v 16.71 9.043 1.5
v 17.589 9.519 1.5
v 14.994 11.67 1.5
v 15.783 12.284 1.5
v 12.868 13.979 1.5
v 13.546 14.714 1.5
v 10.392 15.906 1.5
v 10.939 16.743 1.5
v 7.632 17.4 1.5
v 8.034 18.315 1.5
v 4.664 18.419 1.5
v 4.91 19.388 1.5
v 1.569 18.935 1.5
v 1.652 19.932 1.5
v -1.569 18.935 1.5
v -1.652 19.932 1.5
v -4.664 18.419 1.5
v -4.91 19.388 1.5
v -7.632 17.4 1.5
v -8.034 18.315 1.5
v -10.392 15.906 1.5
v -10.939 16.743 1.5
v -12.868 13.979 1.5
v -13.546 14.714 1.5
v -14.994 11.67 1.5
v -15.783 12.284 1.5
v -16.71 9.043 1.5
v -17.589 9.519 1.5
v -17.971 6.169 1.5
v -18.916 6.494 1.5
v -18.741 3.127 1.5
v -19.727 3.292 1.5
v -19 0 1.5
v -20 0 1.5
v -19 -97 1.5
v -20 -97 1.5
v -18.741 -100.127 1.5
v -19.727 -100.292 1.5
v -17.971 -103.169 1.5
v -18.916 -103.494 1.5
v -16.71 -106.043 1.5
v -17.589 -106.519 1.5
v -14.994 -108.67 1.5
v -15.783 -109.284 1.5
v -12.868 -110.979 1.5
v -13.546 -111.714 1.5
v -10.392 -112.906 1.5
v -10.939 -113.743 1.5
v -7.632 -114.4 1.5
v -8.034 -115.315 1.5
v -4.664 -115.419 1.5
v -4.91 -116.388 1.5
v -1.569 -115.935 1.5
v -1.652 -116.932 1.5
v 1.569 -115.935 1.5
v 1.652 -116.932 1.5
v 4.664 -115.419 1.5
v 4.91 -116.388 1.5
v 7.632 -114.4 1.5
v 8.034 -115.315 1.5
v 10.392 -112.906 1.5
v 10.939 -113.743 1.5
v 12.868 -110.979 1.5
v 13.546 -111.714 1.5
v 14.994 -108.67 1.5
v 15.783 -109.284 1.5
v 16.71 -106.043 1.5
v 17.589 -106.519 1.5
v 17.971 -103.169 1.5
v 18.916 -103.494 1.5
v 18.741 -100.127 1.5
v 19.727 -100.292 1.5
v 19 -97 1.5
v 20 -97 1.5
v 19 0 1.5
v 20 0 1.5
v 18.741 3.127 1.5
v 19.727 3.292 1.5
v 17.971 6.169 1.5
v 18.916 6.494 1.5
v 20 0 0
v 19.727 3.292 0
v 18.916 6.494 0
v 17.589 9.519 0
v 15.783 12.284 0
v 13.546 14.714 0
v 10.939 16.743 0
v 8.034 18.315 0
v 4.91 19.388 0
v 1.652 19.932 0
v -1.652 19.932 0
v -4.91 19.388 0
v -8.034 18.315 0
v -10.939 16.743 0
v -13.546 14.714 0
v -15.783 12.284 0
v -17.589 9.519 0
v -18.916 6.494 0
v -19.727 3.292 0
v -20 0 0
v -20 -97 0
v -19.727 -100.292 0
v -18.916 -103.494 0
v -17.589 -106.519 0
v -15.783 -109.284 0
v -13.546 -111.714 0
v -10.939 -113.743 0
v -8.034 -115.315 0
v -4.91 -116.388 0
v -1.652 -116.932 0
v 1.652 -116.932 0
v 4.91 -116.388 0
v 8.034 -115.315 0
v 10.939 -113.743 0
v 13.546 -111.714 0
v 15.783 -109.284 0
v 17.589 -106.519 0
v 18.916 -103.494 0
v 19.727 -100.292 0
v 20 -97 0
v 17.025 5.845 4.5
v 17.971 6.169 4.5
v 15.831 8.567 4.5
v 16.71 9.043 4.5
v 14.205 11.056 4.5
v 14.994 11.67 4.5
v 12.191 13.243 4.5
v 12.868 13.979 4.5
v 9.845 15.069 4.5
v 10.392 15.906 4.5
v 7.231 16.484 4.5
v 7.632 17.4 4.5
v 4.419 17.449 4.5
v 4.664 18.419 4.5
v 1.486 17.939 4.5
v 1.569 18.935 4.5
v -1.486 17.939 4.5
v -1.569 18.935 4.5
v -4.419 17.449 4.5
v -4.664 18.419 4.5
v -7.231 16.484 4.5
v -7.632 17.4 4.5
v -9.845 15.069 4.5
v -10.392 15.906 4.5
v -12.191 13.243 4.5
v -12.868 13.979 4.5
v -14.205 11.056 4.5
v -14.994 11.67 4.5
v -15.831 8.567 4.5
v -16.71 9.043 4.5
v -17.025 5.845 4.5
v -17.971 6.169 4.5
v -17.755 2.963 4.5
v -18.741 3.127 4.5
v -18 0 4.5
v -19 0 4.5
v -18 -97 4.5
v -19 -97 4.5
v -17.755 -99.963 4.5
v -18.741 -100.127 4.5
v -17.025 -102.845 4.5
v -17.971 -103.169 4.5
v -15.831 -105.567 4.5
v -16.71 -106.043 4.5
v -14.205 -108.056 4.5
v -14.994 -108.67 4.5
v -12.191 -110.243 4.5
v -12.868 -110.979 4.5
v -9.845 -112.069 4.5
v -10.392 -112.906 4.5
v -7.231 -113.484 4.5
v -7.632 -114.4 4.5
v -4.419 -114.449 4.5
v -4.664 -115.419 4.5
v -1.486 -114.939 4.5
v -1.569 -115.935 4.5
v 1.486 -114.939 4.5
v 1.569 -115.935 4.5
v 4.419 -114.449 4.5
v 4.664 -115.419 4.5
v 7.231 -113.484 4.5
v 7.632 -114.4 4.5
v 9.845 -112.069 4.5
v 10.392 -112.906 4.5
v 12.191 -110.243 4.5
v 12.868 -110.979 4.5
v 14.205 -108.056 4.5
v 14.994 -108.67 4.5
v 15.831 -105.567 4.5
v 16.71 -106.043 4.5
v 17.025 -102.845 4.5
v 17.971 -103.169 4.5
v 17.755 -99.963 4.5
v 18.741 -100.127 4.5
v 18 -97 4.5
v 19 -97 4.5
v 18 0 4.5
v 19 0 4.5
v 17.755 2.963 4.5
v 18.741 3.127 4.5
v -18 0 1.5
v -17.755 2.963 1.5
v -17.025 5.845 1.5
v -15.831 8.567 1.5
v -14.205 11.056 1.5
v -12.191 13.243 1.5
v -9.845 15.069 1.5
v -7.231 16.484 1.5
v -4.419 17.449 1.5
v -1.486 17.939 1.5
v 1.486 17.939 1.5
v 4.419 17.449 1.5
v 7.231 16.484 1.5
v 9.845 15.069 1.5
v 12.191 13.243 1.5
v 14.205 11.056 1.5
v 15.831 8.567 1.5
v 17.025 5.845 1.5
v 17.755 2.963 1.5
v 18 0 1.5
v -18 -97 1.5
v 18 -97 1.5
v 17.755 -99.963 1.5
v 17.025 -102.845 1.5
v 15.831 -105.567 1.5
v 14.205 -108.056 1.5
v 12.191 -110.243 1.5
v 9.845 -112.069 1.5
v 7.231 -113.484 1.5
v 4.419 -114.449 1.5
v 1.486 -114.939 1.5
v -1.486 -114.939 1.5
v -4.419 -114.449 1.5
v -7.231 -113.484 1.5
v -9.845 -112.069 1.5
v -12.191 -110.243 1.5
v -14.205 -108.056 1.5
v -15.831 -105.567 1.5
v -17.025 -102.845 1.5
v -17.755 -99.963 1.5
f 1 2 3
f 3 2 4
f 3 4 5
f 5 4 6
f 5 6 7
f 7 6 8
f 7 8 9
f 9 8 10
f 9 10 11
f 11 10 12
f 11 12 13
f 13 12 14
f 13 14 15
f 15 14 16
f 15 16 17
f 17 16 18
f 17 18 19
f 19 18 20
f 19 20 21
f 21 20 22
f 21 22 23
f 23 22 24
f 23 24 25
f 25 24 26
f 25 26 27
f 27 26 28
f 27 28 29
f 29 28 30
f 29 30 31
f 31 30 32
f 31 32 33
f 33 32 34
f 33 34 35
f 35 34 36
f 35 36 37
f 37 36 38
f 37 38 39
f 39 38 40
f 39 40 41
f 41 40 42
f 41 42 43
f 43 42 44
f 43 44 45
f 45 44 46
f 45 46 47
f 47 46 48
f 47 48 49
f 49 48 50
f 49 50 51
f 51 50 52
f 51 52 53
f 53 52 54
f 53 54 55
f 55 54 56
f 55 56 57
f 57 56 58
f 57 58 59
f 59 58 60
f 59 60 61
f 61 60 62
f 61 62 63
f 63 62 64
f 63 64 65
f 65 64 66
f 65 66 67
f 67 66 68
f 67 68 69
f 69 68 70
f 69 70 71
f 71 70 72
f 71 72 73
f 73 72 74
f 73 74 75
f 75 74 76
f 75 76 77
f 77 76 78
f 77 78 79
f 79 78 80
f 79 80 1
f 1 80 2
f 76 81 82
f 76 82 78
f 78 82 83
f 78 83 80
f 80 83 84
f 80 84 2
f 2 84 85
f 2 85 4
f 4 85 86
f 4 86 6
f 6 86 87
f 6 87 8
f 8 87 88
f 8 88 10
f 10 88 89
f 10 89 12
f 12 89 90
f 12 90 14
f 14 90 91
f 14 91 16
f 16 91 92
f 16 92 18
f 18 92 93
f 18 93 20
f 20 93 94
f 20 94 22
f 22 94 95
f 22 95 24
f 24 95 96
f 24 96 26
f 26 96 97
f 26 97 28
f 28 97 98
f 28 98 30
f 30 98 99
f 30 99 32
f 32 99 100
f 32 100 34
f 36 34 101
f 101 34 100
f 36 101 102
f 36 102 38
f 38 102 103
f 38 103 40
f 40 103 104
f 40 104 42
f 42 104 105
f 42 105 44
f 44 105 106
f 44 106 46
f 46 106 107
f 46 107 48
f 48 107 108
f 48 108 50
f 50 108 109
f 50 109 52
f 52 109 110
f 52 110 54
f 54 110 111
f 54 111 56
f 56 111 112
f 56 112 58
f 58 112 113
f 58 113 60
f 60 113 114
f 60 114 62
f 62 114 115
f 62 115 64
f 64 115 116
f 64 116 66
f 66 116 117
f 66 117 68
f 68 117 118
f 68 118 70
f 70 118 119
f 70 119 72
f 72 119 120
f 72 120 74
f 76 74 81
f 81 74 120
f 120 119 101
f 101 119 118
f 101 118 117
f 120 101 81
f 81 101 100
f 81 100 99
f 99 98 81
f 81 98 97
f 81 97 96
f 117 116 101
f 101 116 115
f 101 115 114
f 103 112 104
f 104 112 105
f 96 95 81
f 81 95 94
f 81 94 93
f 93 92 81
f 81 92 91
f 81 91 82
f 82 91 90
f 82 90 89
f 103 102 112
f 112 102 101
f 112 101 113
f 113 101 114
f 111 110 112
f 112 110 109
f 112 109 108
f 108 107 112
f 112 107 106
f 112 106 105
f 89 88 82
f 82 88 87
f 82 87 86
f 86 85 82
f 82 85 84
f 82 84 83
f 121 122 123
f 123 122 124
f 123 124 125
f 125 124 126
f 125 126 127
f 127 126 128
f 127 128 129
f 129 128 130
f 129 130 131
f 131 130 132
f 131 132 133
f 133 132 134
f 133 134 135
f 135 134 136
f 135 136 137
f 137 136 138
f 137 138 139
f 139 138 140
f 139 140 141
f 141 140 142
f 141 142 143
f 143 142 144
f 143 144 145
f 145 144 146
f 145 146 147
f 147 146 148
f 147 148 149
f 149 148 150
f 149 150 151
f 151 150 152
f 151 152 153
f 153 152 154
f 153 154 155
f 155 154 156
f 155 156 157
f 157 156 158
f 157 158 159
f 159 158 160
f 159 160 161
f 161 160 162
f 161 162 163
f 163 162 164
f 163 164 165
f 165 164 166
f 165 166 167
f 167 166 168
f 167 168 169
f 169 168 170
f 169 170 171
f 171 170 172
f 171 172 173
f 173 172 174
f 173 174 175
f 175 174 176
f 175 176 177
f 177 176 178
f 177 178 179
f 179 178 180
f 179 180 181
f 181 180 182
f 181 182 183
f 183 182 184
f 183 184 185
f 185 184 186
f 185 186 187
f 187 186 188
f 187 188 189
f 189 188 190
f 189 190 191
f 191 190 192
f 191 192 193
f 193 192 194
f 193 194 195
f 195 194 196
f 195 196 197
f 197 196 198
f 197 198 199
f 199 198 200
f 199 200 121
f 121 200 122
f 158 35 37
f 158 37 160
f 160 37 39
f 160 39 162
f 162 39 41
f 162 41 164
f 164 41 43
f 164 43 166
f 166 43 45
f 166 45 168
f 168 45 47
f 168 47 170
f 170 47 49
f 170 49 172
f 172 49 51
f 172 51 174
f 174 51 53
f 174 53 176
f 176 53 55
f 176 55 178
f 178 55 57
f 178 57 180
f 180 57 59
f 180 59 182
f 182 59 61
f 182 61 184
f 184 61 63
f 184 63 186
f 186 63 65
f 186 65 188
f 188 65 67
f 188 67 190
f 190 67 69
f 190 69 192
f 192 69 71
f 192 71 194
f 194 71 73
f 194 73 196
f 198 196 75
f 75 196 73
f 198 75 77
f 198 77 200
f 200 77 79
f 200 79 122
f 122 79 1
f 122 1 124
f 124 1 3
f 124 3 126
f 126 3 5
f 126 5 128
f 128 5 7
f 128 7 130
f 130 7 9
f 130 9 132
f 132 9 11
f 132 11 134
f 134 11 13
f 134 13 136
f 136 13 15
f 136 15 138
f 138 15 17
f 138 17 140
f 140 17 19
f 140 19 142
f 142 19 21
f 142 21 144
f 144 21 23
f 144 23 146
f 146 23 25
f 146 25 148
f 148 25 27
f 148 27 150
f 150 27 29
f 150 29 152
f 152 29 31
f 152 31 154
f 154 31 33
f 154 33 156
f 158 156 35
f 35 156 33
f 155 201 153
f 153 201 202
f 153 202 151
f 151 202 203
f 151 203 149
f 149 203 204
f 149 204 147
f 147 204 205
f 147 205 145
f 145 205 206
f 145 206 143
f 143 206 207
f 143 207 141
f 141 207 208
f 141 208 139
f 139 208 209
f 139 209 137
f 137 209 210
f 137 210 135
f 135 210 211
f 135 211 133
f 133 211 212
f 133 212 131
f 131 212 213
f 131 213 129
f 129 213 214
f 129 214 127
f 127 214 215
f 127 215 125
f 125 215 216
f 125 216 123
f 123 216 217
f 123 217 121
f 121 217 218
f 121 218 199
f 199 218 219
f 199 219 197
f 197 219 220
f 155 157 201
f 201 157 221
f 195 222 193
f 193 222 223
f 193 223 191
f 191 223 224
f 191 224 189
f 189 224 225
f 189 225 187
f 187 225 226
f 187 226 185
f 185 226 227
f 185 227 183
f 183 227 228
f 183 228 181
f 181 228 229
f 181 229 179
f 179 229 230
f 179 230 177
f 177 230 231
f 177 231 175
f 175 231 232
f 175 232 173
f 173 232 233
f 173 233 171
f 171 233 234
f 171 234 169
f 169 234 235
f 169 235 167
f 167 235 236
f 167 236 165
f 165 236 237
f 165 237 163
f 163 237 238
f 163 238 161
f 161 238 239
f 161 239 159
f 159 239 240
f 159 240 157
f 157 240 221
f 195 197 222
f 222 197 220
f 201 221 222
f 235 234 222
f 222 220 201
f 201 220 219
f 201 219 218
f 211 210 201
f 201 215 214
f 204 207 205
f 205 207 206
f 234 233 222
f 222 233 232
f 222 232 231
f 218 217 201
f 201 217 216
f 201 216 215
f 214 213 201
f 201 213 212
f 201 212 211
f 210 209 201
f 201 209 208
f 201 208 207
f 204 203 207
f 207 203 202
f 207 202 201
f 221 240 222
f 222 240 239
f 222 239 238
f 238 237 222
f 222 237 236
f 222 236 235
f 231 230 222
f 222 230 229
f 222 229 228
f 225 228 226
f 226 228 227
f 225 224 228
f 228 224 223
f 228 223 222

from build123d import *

# Parameters (mm, degrees)
BOSS_EXTRUDE1_DEPTH = 1.5
BOSS_EXTRUDE2_DEPTH = 3


with BuildPart() as part:
    # Sketch3 → Boss-Extrude1 (new body)
    with BuildSketch(Plane.XY):
        with BuildLine():
            Line((-20, 0), (-20, -97))
            ThreePointArc((-20, -97), (0, -117), (20, -97))
            Line((20, -97), (20, 0))
            ThreePointArc((20, 0), (0, 20), (-20, 0))
        make_face()
    extrude(amount=BOSS_EXTRUDE1_DEPTH)

    # Sketch5 → Boss-Extrude2 (add)
    with BuildSketch(Plane.XY.offset(1.5)):
        with BuildLine():
            Line((-19, 0), (-19, -97))
            ThreePointArc((-19, -97), (0, -116), (19, -97))
            Line((19, -97), (19, 0))
            ThreePointArc((19, 0), (0, 19), (-19, 0))
        make_face()
        with BuildLine():
            Line((-18, 0), (-18, -97))
            ThreePointArc((-18, -97), (0, -115), (18, -97))
            Line((18, -97), (18, 0))
            ThreePointArc((18, 0), (0, 18), (-18, 0))
        make_face(mode=Mode.SUBTRACT)
    extrude(amount=BOSS_EXTRUDE2_DEPTH)


solid = part.part
